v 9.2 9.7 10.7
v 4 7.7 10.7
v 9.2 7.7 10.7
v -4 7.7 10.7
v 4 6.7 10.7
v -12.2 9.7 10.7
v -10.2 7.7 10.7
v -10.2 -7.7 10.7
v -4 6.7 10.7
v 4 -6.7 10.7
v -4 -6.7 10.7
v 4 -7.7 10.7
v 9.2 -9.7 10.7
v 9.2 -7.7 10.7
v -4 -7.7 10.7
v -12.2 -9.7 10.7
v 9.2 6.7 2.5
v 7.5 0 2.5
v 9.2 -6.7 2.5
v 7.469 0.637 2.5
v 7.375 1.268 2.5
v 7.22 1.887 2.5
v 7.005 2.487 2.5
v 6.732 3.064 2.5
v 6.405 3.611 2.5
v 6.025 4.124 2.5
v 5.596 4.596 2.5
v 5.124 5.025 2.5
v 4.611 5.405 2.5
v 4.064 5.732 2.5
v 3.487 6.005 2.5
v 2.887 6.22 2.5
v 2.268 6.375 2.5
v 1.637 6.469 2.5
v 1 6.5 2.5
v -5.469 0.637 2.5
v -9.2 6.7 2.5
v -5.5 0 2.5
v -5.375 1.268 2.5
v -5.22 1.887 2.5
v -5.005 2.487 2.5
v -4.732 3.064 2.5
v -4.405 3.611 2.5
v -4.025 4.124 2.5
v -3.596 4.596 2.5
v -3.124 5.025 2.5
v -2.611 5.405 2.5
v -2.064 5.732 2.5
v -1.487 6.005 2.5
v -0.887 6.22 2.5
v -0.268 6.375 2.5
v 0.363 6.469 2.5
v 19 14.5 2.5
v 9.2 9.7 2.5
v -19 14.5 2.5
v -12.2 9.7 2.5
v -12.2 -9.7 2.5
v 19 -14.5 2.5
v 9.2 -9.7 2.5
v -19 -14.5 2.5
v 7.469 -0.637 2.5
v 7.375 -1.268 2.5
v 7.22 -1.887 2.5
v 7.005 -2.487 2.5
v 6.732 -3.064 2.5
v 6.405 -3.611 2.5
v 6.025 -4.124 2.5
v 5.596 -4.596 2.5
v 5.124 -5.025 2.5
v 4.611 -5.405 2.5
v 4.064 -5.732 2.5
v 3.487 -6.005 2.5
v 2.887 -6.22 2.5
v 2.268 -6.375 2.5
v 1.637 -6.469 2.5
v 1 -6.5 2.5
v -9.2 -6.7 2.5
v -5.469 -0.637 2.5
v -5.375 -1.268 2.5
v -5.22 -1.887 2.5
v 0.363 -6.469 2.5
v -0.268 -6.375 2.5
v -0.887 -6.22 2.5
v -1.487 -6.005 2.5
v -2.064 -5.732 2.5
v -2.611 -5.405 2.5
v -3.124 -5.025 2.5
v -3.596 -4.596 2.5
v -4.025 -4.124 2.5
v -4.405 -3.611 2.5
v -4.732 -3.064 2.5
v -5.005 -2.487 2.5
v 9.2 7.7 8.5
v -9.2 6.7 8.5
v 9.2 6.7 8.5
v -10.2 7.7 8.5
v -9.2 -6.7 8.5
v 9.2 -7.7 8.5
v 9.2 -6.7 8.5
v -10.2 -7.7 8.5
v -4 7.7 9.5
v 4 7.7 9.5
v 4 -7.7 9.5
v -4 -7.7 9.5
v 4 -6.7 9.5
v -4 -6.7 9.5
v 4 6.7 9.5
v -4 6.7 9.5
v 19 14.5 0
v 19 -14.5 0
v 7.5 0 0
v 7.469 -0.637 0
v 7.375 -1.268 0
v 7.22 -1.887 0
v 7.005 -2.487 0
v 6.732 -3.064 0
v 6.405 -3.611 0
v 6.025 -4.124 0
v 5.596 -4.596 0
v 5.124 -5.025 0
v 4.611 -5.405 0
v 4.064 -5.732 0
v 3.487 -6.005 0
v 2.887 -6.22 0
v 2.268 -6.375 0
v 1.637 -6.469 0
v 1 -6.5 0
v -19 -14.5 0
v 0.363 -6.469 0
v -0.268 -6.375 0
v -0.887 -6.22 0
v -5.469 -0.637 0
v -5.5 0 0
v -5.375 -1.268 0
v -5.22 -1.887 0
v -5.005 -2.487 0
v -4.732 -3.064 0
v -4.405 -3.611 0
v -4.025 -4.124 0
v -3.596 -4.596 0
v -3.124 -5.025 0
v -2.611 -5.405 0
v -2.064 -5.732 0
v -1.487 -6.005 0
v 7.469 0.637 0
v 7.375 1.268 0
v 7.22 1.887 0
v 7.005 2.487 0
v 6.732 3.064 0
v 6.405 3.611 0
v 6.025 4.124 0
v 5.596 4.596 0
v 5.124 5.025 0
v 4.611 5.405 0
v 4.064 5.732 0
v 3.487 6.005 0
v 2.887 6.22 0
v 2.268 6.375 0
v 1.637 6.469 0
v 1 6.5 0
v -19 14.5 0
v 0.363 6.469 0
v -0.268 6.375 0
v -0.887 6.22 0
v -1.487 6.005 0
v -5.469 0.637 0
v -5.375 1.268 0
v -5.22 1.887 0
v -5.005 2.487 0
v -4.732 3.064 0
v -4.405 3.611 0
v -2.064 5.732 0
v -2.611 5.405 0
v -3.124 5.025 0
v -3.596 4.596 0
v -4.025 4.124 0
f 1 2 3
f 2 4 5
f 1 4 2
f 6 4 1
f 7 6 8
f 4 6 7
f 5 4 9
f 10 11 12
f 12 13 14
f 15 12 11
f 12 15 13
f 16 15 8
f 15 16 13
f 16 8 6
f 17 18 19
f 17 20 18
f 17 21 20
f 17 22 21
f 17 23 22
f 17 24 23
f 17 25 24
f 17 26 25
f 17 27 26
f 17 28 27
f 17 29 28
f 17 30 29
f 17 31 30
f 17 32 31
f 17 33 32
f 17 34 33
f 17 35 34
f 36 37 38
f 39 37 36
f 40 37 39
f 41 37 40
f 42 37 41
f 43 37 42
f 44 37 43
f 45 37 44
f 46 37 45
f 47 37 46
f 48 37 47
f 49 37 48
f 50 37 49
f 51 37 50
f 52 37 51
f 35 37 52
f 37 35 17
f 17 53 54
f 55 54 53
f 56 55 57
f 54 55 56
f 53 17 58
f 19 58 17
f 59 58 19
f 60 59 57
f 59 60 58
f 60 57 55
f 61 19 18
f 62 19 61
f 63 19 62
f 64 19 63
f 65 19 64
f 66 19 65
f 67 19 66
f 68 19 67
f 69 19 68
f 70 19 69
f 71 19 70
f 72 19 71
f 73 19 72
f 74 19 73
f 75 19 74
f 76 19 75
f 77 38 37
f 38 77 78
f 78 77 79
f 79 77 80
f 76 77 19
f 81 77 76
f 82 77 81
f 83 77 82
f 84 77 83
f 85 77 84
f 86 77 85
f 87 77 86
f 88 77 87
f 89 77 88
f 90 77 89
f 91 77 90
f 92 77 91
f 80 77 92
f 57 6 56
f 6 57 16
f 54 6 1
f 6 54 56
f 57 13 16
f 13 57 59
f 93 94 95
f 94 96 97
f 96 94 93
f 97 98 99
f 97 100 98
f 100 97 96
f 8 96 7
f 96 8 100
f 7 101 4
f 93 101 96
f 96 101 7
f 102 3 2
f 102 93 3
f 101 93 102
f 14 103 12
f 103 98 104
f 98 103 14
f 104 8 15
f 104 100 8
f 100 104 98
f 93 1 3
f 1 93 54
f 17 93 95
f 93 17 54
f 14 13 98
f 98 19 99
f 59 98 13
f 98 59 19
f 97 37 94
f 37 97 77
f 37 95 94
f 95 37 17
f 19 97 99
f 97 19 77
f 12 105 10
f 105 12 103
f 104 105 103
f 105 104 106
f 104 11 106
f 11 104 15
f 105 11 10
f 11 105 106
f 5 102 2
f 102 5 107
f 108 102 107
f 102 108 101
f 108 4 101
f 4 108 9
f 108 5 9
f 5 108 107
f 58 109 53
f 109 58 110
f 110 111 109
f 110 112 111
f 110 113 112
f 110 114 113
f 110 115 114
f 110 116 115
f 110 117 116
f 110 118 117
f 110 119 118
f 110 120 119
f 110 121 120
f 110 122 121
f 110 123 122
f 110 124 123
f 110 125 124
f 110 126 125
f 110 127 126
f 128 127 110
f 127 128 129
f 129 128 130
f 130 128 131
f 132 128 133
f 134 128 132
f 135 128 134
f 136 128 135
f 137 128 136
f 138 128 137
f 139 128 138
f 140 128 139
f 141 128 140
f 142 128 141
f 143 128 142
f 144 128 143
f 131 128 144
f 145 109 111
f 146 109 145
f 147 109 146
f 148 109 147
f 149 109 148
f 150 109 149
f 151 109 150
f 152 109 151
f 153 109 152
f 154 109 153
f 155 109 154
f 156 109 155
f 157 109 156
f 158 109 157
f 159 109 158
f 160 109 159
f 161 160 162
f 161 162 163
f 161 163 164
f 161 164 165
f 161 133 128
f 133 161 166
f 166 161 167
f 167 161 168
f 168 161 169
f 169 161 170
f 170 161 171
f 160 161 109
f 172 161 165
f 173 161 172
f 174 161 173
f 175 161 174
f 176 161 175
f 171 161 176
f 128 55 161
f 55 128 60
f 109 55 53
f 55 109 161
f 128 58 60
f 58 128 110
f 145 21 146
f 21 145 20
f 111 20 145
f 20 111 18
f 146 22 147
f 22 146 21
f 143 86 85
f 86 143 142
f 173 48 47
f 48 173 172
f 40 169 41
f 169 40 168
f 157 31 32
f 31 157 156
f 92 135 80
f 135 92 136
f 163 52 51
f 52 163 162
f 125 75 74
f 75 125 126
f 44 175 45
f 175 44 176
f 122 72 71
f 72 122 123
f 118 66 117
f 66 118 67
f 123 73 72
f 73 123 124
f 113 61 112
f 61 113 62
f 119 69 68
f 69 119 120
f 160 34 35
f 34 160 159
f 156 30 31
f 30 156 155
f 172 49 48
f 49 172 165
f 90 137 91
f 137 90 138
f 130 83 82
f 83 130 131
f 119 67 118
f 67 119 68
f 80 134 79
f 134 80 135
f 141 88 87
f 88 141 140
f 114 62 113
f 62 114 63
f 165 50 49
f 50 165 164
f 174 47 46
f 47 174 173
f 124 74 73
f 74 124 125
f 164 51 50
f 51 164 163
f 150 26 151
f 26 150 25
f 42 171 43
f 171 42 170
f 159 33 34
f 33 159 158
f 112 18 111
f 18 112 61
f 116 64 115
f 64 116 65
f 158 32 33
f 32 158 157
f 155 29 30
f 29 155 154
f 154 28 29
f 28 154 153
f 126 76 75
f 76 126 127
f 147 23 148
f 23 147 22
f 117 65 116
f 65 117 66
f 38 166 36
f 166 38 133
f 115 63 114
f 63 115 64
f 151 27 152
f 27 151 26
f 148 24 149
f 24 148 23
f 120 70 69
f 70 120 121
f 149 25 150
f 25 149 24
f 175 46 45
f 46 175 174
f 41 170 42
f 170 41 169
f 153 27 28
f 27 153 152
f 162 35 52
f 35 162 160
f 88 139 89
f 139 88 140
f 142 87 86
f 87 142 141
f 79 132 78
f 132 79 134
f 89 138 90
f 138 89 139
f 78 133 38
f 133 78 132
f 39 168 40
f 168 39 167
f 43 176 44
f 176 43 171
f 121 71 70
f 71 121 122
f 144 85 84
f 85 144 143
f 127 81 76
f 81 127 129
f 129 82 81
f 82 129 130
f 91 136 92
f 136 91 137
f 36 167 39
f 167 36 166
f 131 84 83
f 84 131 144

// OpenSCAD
// ============================================================
// IR Receiver Mount — Fit Test (v2, measured board)
//
// Holds the Elegoo IR receiver board flat in a GAP below the enclosure top
// plate. The TSOP head (⌀12, 10 mm tall) pokes UP through a hole and out a
// little; the 3 pins (5 mm, SAME side as the head) point up into the gap and
// clear the ceiling. Board hangs in the gap because head + pins share a face.
//
// MEASURED (2026-06-12): board 20 × 15 × 1.0, head ⌀12 (r6) × 10 tall, pins
// 5 tall on the same side as the head, overhanging a 15 mm edge by 4 mm.
// Head: centred across the 15 mm width; along the 20 mm length it sits 11 mm
// from the no-pin edge / 9 mm from the pin edge → centre +1 mm toward pins.
// (Your 5 mm = gap to the head's near edge; 9.5 mm = to the head centre.)
//
// ---- Geometry trade-off (set by `gap`) ----
//   head poke-out  = head_h − gap − ceil_t   (gap 6 → 1.5 mm out)
//   pin clearance  = gap − pin_h             (gap 6 → 1.0 mm below ceiling)
// Bigger gap = more pin/wire room but less poke-out (head_h−ceil_t = 7.5 max).
//
// ---- Print ----
// PLA, 0.2 mm layer, 2 walls, 15% infill, NO supports.
// Orientation: plate flat on bed, cradle UP (real top-plate orientation,
// exterior face down). The head hole pokes out the bottom — flip to view.
//
// ---- How to test & report ----
// 1. Drop the board in from the top, head over the round hole, pins/wires out
//    the OPEN end. It rests on the inner ledges; the 2 snap lips hold it down.
// 2. Flip the piece: the head should poke out the flat face ~1.5 mm.
// 3. The pins should hang ~1 mm above the plate's top (= the ceiling clearance).
// Report: board fit (tight/loose)?  head aligned with hole?  poke-out amount?
//         pins clear?  lips hold?
// ============================================================

// ============================================================
// PARAMETERS
// ============================================================

// ---- IR receiver PCB (MEASURED, except thickness) ----
pcb_l = 20.0;   // mm — board length (X)
pcb_w = 15.0;   // mm — board width (Y); pins overhang one 15 mm (short) edge
pcb_t =  1.0;   // mm — board thickness (MEASURED)
fit   =  0.4;   // mm — total clearance around PCB (0.2/side)

// ---- TSOP head / dome (MEASURED) ----
head_d = 12.0;  // mm — head diameter (radius 6)
head_h = 10.0;  // mm — head height above the PCB face
head_cx = 1.0;  // mm — head centre X: +1 toward the pin (+X) edge (11mm/9mm)
head_cy = 0.0;  // mm — head centre Y: centred across the width (MEASURED)
head_hole_clear = 1.0;  // mm — added to head_d for the hole (→ ⌀13.0; also
                        //      absorbs ~0.5 mm head-position uncertainty)

// ---- Pins (MEASURED) — same side as head, at the +X (15 mm) edge ----
pin_h        = 5.0;  // mm — pin height above the PCB face
pin_overhang = 4.0;  // mm — pins extend this far past the +X board edge

// ---- Enclosure top plate (ceiling) ----
ceil_t = 2.5;   // mm — top-plate thickness (= floor_t in the enclosure)

// ---- Mount gap (board face below the ceiling interior) ----
gap = 6.0;      // mm — sets poke-out (1.5) and pin clearance (1.0)

// ---- Cradle ----
wall    = 2.0;  // mm — wall thickness
ledge   = 1.0;  // mm — inward rest ledge the board sits on
lip     = 1.0;  // mm — snap-lip inward overhang
lip_h   = 1.2;  // mm — snap-lip thickness (Z)
lip_len = 8.0;  // mm — snap-lip length along the board
border  = 5.0;  // mm — flat plate margin

eps = 0.01;

// ============================================================
// DERIVED
// ============================================================
pocket_l = pcb_l + fit;            // 20.4
pocket_w = pcb_w + fit;            // 15.4
outer_l  = pocket_l + 2*wall;      // 24.4
outer_w  = pocket_w + 2*wall;      // 19.4
rest_z   = ceil_t + gap;           // 8.5 — board head-side face rests here
top_z    = rest_z + pcb_t + lip_h; // 11.3 — cradle top
hole_d   = head_d + head_hole_clear;          // 12.6
plate_l  = pcb_l + 2*pin_overhang + 2*border; // 38
plate_w  = pcb_w + 2*wall + 2*border;         // 29
poke_out = head_h - gap - ceil_t;  // 1.5 (info)
pin_clear = gap - pin_h;           // 1.0 (info)

// ============================================================
// MODULE: cradle (U-shape, +X end open for pins/wires)
// ============================================================
module cradle() {
    difference() {
        // outer box
        translate([-outer_l/2, -outer_w/2, ceil_t])
            cube([outer_l, outer_w, top_z - ceil_t]);
        // upper pocket — board drops in (z >= rest_z)
        translate([-pocket_l/2, -pocket_w/2, rest_z])
            cube([pocket_l, pocket_w, top_z - rest_z + eps]);
        // lower cavity — head passes through (z ceil_t..rest_z); ledge juts in
        translate([-(pocket_l/2 - ledge), -(pocket_w/2 - ledge), ceil_t - eps])
            cube([pocket_l - 2*ledge, pocket_w - 2*ledge, gap + 2*eps]);
        // open the +X end (remove +X wall + ledge) for pins and wires
        translate([pocket_l/2 - ledge, -outer_w, ceil_t - eps])
            cube([outer_l, 2*outer_w, top_z - ceil_t + 2*eps]);
    }
}

// ============================================================
// MODEL
// ============================================================
difference() {
    union() {
        // ceiling plate (a patch of the top plate; covers board + pin overhang)
        translate([-plate_l/2, -plate_w/2, 0])
            cube([plate_l, plate_w, ceil_t]);

        cradle();

        // snap lips on the two long walls (hold the board down on the ledges)
        for (sy = [-1, 1]) {
            yy = (sy > 0) ? pocket_w/2 - lip : -pocket_w/2;
            translate([-lip_len/2, yy, rest_z + pcb_t])
                cube([lip_len, lip, lip_h]);
        }
    }

    // head hole through the plate
    translate([head_cx, head_cy, -eps])
        cylinder(d=hole_d, h=ceil_t + 2*eps, $fn=64);
}

// ============================================================
// KEY DIMENSIONS  (v2 — measured board)
// plate        : 38 × 29 × 2.5 mm, cradle to z=10.7 mm
// board pocket : 20.4 × 15.4 mm (PCB 20 × 15 + 0.4 fit), thickness 1.0
// head hole    : ⌀13.0 mm (head ⌀12 + 1.0), centre +1 mm toward pins
// mount gap    : 6 mm  → head pokes out 1.5 mm, pins clear ceiling by 1.0 mm
// pins         : 5 mm tall, 4 mm past the +X edge → +X cradle end left open
// rest ledges  : 1 mm inward on −X / +Y / −Y; 2 snap lips on the long walls
// ============================================================
